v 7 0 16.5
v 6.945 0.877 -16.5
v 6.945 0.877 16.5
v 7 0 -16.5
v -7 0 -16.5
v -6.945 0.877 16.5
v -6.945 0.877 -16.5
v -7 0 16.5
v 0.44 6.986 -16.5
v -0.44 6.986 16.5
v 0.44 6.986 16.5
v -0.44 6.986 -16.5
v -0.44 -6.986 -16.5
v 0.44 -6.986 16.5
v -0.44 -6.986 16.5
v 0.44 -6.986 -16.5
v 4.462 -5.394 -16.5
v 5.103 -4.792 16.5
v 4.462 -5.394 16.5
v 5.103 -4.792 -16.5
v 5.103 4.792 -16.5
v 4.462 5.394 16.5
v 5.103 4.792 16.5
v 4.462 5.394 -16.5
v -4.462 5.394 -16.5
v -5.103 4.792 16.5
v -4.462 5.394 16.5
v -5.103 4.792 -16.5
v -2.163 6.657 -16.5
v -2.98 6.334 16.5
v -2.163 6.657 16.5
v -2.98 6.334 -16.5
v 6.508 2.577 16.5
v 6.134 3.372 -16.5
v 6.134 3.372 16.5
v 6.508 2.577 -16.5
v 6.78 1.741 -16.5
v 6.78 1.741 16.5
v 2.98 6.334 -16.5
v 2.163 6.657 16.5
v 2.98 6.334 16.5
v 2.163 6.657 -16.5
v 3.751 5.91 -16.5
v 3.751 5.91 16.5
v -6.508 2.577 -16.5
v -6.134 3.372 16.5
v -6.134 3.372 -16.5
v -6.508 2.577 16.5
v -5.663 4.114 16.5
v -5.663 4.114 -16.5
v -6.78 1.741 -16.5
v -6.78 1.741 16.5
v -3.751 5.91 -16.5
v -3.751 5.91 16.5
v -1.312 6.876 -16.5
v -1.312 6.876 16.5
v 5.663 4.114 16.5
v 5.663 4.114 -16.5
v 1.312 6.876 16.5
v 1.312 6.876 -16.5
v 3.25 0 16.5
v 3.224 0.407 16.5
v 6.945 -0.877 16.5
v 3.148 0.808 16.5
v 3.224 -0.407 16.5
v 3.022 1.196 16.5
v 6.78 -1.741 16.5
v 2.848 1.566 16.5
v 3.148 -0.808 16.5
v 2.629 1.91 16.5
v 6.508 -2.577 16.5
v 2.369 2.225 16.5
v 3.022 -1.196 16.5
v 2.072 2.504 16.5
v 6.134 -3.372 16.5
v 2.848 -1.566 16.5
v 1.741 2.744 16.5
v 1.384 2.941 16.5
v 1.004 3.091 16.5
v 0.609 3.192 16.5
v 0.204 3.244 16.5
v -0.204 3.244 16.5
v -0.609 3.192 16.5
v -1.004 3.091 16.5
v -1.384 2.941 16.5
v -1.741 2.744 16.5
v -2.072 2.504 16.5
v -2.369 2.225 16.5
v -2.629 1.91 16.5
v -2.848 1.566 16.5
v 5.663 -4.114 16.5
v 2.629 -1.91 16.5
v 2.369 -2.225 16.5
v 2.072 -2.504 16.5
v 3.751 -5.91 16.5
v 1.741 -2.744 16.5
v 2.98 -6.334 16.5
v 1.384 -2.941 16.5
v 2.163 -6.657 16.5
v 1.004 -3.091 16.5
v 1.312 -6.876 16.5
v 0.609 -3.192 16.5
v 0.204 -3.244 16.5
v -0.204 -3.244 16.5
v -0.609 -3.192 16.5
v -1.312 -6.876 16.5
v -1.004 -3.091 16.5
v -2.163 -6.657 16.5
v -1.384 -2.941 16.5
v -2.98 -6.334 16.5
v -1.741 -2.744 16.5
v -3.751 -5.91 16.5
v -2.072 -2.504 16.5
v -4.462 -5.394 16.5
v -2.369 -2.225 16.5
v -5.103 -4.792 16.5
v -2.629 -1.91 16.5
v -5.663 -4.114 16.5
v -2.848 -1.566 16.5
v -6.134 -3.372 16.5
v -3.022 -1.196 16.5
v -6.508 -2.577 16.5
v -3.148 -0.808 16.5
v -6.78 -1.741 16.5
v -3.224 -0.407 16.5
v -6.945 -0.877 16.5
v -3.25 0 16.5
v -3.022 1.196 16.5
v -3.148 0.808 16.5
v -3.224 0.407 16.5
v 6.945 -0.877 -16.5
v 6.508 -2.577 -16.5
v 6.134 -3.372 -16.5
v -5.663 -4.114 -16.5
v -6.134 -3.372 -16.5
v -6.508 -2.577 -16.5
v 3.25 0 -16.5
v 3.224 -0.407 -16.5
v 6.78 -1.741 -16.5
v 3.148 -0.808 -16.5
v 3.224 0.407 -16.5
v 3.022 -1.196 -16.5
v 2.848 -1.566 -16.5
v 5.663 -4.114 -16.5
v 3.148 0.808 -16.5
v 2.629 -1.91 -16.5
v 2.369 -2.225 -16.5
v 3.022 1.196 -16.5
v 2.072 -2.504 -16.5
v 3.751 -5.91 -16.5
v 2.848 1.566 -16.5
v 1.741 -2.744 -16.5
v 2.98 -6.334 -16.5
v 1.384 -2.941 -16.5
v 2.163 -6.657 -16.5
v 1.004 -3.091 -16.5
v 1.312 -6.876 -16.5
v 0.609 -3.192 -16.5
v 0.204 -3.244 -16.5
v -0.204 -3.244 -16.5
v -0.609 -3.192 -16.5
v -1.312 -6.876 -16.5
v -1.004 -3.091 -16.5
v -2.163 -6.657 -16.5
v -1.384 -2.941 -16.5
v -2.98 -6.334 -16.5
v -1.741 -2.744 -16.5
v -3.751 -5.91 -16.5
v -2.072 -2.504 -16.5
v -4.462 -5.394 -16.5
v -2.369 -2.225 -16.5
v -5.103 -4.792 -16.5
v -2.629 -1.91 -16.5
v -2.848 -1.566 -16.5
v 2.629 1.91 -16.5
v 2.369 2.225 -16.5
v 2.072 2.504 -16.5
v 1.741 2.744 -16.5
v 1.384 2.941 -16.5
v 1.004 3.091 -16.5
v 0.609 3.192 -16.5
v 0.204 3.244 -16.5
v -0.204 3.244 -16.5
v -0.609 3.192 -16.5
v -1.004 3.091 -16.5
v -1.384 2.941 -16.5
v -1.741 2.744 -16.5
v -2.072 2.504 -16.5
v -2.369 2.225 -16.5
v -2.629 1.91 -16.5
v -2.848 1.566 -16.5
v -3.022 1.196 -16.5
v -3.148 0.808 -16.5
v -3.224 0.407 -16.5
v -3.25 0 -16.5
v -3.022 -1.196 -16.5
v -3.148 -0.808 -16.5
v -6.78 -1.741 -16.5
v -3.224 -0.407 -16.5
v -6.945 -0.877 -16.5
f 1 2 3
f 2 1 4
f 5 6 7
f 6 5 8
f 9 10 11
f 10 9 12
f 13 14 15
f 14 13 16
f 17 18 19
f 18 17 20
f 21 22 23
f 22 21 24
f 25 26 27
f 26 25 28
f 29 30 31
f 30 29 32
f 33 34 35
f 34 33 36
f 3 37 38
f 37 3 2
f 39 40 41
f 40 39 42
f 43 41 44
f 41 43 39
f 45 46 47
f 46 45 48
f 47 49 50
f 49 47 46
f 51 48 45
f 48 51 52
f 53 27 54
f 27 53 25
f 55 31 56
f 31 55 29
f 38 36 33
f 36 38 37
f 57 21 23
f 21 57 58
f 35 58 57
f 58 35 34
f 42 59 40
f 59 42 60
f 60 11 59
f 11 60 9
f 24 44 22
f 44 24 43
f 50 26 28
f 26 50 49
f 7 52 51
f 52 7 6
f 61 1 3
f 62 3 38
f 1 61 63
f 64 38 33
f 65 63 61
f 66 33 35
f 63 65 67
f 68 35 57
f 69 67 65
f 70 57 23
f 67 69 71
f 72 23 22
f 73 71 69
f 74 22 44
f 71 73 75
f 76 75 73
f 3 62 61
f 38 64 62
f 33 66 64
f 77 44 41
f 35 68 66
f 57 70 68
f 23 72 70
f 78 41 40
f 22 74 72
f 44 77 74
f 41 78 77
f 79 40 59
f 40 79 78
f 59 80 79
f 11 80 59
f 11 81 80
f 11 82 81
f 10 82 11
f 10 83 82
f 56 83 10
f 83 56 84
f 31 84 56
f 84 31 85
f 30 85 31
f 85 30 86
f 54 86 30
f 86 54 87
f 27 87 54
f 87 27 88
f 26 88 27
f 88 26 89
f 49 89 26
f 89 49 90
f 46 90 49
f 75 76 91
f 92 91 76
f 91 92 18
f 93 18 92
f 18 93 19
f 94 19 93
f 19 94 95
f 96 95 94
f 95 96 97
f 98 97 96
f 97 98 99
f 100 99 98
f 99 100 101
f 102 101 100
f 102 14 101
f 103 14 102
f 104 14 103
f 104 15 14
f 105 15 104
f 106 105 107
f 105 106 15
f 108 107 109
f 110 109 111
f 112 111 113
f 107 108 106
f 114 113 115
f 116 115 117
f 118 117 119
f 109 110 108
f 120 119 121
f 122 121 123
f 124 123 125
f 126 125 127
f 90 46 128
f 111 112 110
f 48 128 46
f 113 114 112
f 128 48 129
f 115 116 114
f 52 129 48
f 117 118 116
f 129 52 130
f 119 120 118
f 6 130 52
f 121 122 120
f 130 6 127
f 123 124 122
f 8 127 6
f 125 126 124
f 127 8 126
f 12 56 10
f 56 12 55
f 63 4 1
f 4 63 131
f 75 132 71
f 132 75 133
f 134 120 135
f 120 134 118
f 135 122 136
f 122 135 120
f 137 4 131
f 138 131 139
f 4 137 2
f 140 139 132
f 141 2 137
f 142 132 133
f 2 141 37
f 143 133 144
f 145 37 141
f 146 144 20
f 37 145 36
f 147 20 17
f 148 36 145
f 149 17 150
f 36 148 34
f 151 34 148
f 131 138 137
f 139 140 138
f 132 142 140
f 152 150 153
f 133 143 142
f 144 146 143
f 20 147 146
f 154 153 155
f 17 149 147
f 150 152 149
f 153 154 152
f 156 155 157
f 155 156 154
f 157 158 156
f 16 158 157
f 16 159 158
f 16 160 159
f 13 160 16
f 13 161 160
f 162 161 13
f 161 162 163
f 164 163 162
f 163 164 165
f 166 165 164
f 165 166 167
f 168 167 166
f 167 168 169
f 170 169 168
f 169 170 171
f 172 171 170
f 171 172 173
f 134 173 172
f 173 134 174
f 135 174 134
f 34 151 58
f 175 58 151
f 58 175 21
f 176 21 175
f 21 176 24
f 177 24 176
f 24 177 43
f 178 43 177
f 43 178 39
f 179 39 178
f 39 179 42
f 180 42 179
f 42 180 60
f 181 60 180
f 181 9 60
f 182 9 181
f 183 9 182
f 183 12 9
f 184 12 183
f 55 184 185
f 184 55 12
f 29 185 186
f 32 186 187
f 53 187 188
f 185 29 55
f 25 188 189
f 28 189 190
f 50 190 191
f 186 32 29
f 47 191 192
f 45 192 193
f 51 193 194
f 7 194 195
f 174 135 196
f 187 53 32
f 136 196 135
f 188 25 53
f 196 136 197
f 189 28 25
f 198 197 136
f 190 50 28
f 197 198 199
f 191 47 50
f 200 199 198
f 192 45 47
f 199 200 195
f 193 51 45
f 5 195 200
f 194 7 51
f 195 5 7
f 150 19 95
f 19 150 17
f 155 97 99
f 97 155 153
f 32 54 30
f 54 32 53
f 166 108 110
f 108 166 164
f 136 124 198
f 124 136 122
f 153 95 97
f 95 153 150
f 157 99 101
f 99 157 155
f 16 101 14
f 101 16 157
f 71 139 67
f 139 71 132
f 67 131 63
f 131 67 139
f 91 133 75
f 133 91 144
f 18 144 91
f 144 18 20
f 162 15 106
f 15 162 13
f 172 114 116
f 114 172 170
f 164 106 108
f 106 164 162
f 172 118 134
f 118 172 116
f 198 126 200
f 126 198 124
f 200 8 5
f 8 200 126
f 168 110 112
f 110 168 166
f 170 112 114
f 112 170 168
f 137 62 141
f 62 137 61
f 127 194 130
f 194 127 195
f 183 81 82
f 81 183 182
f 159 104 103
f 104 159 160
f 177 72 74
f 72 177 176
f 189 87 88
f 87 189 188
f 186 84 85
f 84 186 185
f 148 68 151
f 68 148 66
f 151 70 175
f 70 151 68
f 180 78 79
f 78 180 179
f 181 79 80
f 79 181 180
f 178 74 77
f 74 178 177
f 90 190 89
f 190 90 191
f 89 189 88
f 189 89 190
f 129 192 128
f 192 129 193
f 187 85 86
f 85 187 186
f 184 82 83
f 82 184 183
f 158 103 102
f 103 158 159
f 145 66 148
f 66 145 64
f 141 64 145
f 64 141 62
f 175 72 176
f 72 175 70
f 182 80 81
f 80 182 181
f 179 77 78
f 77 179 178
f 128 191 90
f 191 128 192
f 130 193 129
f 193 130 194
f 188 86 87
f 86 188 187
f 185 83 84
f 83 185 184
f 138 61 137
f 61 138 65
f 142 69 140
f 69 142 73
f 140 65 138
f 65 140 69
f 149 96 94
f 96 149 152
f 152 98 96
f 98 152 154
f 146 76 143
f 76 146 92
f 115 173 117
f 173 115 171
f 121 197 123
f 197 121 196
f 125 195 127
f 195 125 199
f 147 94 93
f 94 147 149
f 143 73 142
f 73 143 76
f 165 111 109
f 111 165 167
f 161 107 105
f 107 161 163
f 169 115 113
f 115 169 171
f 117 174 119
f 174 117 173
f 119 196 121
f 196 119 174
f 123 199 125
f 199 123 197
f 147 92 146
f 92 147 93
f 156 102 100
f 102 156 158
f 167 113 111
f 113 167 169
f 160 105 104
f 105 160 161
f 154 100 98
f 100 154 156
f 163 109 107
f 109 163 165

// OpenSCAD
$fn = 50;


difference() {
	union() {
		translate(v = [0, 0, -16.5000000000]) {
			cylinder(h = 33, r = 7.0000000000);
		}
	}
	union() {
		translate(v = [0, 0, -100.0000000000]) {
			cylinder(h = 200, r = 3.2500000000);
		}
	}
}
